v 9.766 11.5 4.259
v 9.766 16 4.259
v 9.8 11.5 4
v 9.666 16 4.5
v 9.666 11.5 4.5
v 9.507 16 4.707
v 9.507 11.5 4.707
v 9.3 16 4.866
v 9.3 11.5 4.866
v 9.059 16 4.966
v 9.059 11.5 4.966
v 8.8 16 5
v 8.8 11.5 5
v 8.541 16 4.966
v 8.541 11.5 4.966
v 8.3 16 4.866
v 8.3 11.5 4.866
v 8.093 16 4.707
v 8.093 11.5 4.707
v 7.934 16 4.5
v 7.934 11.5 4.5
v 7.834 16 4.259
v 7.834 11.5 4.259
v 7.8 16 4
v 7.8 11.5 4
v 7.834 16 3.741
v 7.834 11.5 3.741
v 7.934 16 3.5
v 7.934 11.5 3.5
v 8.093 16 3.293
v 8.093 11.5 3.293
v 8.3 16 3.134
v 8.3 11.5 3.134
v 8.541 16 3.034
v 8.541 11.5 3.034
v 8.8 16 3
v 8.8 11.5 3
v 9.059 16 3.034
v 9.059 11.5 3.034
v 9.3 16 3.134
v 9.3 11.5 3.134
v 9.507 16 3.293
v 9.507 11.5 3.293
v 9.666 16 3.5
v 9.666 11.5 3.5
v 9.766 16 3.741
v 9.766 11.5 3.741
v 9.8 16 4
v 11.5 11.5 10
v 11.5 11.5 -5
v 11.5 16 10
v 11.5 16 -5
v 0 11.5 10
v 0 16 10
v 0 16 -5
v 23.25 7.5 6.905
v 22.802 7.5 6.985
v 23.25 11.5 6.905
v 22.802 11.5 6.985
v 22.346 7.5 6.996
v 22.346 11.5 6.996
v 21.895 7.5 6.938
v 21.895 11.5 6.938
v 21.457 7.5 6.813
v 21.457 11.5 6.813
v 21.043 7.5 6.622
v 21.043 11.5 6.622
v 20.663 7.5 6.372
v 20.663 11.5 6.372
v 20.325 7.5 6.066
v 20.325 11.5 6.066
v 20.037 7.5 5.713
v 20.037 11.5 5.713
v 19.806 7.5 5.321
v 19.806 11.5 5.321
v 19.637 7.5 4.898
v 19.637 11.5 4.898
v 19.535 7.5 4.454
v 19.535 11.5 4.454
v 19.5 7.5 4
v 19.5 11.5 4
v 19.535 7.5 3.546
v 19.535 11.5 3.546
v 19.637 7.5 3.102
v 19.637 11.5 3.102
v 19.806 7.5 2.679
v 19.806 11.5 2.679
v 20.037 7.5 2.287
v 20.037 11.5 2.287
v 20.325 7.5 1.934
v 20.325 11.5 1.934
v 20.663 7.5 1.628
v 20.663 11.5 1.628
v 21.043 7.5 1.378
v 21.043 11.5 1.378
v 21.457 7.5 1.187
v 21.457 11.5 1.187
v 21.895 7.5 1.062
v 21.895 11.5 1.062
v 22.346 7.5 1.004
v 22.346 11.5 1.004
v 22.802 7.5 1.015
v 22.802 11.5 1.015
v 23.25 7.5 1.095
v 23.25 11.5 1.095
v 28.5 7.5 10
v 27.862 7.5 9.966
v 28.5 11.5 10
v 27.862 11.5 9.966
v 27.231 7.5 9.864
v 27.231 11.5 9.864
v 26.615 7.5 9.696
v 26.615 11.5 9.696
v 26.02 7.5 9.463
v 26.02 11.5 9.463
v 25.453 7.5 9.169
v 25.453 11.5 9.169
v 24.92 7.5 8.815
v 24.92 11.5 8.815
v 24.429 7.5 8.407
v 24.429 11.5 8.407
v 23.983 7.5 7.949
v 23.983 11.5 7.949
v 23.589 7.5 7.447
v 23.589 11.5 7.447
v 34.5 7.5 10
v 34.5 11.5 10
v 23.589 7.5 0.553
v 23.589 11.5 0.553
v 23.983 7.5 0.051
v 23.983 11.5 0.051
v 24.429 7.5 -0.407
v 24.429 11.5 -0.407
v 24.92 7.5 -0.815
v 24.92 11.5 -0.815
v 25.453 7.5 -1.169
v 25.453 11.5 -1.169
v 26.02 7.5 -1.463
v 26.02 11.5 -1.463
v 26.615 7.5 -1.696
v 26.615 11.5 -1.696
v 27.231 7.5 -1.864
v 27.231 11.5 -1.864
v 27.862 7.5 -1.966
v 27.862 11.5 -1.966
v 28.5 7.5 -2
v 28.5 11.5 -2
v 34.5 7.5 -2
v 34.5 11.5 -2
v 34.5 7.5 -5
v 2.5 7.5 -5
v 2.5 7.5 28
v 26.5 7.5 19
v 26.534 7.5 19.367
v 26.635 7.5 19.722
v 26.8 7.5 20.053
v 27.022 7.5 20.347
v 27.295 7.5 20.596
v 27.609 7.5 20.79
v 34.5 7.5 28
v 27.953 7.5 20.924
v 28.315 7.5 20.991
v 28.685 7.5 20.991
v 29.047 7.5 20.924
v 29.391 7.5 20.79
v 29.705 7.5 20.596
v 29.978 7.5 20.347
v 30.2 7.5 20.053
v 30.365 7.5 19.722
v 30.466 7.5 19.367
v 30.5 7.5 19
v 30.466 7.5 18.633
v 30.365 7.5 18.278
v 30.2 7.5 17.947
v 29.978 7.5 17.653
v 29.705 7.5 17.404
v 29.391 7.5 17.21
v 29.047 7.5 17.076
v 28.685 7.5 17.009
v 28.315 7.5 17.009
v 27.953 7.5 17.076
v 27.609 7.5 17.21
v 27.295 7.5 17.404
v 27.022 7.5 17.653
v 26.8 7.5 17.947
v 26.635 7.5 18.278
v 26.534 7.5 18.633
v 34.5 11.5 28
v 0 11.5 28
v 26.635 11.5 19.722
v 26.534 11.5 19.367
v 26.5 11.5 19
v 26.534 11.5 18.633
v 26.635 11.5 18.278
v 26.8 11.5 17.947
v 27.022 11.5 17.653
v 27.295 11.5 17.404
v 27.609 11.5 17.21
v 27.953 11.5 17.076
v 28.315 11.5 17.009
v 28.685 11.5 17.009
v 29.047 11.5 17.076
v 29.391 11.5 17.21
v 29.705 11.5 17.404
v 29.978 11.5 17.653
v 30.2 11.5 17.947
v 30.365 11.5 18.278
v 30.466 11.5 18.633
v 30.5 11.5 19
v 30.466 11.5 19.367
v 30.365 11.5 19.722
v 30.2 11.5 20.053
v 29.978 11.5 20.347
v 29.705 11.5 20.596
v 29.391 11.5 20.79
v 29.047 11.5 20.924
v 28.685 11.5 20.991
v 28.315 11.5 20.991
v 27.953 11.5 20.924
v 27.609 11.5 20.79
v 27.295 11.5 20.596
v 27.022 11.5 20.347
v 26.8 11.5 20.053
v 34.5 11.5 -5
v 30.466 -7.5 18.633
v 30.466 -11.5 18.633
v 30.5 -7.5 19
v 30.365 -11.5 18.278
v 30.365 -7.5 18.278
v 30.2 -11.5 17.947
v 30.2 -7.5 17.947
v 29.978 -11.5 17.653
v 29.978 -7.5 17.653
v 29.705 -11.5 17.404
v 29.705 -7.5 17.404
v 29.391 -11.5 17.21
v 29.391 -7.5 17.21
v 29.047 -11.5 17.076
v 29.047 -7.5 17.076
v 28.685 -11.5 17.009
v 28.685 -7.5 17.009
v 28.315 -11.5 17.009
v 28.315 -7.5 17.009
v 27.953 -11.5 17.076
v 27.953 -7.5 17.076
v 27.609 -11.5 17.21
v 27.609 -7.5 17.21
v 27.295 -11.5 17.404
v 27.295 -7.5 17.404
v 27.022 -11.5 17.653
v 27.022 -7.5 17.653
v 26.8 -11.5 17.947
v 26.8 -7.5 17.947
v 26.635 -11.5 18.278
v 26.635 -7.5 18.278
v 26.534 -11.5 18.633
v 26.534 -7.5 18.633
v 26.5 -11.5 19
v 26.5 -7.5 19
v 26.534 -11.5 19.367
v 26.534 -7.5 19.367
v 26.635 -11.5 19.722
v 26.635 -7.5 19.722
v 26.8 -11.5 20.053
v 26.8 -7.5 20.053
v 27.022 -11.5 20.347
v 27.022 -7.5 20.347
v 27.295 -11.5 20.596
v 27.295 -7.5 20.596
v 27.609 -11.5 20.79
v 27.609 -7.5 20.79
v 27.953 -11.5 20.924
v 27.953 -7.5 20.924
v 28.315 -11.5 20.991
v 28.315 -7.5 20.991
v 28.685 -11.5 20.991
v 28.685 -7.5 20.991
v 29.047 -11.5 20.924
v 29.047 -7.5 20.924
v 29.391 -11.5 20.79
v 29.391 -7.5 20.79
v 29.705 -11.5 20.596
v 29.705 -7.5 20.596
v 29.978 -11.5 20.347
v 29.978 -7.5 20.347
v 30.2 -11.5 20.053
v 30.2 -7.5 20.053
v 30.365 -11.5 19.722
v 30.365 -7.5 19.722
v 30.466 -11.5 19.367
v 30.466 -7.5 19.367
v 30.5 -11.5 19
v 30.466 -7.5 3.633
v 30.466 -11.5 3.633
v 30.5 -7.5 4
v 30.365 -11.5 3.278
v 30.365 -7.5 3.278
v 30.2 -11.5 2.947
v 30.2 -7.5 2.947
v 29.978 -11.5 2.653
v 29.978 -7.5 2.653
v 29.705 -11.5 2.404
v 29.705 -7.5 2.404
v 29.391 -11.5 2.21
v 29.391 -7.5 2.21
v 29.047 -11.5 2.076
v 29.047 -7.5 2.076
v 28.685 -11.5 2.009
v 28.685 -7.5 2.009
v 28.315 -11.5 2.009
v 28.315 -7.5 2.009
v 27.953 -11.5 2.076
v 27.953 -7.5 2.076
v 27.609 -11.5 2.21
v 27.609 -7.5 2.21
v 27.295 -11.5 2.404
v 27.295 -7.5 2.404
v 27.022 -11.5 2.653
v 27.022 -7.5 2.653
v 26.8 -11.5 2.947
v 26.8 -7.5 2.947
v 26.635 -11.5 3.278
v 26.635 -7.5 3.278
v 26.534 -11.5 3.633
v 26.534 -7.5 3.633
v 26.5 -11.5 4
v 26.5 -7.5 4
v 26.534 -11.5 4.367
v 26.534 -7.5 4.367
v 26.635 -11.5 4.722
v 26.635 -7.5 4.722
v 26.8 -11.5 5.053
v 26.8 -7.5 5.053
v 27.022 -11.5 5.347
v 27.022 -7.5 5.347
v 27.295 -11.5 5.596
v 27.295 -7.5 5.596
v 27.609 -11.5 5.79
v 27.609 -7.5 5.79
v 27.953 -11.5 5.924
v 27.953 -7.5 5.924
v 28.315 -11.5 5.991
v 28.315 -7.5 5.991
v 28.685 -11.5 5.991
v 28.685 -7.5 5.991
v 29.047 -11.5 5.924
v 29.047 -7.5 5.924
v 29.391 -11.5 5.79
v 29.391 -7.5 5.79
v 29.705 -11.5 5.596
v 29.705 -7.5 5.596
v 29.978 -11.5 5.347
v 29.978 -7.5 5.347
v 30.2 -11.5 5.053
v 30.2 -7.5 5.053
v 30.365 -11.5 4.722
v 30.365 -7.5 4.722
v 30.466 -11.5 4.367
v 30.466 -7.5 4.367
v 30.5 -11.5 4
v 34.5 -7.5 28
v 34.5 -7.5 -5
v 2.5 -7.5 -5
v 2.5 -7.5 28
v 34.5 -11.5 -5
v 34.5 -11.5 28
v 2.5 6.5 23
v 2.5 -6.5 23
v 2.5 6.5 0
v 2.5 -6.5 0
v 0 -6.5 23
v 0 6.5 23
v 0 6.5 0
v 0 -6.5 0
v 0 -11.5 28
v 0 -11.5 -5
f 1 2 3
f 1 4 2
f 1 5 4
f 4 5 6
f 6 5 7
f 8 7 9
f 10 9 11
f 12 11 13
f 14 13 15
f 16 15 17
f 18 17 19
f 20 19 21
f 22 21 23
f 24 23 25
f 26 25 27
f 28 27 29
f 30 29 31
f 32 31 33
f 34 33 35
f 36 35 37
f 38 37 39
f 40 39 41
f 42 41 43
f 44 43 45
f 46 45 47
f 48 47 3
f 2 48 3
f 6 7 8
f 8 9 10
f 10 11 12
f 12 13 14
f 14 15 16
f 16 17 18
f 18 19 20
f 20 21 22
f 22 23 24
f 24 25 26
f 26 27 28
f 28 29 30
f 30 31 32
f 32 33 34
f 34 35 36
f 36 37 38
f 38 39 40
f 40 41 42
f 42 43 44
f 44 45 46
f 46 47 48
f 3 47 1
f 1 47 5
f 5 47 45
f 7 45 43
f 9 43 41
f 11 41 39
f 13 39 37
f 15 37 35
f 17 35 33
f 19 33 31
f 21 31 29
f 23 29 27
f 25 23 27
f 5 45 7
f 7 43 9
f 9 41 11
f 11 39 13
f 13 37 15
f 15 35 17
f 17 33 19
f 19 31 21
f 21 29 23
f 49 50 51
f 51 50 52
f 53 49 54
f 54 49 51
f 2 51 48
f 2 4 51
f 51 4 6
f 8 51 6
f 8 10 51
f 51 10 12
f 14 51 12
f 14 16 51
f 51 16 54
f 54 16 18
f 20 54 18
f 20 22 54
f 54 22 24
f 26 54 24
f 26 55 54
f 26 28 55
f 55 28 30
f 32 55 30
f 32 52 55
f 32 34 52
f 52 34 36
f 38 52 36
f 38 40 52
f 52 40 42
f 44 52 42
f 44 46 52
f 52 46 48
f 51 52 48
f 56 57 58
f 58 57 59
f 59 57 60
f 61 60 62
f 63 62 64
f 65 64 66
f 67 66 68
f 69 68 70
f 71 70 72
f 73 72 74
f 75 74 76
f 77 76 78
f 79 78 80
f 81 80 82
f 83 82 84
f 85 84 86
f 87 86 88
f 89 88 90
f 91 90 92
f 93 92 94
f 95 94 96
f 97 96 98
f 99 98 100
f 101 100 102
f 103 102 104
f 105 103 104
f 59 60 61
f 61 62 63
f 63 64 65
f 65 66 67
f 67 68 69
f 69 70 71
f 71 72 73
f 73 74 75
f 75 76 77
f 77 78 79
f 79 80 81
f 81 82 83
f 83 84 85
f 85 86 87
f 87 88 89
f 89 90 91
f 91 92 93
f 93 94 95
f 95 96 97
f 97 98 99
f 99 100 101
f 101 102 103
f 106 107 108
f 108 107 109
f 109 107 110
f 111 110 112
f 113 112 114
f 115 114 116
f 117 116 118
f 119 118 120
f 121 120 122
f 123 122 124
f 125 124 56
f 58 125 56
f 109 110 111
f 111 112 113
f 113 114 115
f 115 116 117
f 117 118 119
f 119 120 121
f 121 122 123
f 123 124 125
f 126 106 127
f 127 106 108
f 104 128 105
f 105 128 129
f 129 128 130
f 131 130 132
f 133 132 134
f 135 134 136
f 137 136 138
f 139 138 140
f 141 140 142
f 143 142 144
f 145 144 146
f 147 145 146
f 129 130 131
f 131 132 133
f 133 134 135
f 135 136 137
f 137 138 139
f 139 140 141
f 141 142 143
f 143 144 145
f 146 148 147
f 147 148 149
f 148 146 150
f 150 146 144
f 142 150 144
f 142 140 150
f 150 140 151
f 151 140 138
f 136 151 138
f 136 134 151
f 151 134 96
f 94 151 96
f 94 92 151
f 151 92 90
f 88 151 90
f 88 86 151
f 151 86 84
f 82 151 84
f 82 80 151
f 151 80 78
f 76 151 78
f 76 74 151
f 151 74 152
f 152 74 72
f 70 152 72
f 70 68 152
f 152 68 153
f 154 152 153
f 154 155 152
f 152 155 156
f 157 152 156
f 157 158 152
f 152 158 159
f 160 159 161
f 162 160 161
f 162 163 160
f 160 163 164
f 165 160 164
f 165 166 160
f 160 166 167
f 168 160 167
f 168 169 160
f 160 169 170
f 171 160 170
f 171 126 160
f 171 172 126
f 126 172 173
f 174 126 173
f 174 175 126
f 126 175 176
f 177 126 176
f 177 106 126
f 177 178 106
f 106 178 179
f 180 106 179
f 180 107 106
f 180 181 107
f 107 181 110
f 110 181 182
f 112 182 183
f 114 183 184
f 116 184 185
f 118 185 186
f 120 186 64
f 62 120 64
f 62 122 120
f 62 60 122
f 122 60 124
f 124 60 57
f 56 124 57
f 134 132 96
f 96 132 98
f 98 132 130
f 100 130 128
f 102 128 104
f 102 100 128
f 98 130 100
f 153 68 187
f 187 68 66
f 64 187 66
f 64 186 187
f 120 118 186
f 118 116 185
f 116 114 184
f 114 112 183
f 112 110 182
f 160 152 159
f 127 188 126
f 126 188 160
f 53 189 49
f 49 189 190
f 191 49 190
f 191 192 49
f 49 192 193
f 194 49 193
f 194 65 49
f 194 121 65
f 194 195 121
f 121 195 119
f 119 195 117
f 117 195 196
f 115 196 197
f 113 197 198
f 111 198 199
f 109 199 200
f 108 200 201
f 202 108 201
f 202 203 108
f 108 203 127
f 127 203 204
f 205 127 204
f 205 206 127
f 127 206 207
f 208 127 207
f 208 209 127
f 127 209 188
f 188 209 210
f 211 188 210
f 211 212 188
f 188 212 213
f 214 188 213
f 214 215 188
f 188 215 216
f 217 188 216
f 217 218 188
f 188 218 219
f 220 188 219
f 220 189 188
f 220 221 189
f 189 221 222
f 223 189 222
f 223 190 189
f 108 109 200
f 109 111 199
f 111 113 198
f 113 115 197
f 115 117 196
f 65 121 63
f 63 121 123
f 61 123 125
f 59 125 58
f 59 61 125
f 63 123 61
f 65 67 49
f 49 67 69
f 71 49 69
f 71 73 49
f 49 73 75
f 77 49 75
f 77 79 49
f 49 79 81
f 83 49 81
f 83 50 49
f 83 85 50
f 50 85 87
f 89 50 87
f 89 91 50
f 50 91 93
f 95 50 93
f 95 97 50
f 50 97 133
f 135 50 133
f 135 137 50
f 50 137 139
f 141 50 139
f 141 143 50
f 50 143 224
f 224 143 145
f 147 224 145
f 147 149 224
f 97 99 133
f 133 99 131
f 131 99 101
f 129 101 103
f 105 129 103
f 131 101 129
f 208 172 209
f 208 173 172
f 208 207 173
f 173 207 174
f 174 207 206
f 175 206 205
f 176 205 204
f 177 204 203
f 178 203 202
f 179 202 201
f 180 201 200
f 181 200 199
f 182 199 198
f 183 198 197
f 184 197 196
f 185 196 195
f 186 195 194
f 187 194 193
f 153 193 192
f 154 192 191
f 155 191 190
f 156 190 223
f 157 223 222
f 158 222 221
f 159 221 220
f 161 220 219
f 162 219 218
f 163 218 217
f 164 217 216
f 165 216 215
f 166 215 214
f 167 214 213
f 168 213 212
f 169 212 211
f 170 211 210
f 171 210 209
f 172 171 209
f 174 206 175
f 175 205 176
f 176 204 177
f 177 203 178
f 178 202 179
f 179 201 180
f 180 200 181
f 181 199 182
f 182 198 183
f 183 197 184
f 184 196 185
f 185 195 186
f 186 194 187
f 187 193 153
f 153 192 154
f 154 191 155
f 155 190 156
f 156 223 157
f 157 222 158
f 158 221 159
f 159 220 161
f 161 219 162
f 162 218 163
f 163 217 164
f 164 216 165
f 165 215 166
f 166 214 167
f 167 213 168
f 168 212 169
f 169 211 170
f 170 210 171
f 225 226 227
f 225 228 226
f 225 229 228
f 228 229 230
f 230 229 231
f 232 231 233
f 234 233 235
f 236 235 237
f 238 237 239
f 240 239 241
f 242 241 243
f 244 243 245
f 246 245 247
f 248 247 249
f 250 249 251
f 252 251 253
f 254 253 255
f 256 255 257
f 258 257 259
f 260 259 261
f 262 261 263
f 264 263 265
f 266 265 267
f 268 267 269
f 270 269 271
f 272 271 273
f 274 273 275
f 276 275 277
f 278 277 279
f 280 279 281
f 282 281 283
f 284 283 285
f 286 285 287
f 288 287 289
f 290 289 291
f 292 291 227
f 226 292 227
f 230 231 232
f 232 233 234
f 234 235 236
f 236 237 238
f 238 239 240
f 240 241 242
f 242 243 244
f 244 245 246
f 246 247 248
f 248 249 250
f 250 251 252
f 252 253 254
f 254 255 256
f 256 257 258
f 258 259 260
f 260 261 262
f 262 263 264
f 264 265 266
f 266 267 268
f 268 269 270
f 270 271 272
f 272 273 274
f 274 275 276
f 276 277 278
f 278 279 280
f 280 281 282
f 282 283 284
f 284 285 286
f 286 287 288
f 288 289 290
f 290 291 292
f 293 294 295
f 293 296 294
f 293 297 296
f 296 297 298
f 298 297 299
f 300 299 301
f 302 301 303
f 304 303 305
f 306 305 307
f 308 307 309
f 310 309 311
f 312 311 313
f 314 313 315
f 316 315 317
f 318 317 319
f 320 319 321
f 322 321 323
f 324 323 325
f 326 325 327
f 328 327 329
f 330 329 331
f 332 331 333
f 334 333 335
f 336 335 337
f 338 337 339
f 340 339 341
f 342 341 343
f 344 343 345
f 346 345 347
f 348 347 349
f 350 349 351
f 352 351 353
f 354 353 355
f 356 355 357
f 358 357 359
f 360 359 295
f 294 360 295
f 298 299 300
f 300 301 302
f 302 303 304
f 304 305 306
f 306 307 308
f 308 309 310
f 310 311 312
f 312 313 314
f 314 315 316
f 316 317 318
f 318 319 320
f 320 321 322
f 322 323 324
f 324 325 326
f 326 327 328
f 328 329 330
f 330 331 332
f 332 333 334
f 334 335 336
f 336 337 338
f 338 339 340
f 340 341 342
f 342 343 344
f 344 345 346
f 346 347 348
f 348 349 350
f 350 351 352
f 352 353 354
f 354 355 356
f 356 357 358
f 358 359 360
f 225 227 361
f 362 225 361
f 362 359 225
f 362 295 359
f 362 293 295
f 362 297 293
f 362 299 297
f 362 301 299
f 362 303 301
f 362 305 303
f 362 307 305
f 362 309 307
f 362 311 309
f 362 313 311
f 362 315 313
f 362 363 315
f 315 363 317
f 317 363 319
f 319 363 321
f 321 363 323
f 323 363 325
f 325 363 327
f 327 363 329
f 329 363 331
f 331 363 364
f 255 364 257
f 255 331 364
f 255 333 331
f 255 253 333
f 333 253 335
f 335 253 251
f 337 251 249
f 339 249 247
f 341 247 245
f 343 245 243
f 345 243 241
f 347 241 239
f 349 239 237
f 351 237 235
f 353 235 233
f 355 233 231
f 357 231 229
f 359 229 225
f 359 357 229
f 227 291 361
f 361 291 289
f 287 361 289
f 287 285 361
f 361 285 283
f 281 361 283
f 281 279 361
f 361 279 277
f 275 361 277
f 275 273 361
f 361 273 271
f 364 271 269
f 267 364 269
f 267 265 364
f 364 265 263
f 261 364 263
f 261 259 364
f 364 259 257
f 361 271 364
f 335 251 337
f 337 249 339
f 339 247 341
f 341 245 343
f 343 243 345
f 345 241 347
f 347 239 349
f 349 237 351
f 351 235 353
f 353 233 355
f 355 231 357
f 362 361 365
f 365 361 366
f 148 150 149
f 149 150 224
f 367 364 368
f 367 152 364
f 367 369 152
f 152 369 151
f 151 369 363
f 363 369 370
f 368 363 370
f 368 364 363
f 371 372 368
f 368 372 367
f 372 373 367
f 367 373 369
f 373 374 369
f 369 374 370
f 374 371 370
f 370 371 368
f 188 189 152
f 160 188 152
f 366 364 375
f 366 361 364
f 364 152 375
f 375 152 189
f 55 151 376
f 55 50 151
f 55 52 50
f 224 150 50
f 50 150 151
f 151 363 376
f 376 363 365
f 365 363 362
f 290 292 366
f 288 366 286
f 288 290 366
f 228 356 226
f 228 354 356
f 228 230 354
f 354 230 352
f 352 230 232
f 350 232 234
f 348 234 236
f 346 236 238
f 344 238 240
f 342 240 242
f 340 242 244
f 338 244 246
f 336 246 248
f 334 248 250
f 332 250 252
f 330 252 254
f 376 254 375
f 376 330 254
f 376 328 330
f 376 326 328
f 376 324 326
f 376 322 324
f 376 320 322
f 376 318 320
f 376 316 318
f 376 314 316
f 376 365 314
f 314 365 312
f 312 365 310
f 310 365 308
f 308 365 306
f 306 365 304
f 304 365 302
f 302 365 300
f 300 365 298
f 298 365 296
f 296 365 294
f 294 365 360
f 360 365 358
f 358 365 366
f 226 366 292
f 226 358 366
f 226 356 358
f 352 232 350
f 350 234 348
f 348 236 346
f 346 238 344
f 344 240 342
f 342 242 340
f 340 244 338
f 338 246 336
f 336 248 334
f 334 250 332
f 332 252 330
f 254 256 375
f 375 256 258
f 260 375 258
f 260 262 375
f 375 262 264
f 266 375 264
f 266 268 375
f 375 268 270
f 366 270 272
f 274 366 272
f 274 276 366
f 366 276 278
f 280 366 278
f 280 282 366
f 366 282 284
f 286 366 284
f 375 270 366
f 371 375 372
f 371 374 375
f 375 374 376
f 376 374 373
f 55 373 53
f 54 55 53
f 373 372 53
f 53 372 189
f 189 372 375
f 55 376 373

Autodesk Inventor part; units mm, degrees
ref_plane "YZ Plane" through (0, 0, 0) normal (1, 0, 0) x (0, 1, 0)
ref_plane "XZ Plane" through (0, 0, 0) normal (0, 1, 0) x (-1, 0, 0)
ref_plane "XY Plane" through (0, 0, 0) normal (0, 0, 1) x (1, 0, 0)
sketch "Skizze1" plane through (0, 0, 0) normal (1, 0, 0) x (0, 1, 0)
  line L0 (-6.5, 23) -> (-6.5, 0)
  line L1 (-6.5, 0) -> (6.5, 0)
  line L2 (6.5, 0) -> (6.5, 23)
  line L3 (6.5, 23) -> (-6.5, 23)
  line L4 (-6.5, 23) -> (6.5, 0) construction
  line L5 (-6.5, 0) -> (6.5, 23) construction
  line L6 (0, 34.6) -> (0, -11.6) projected
  line L7 (-16.1, 0) -> (16.1, 0) projected
  line L8 (-11.5, -5) -> (-11.5, 28)
  line L9 (-11.5, 28) -> (11.5, 28)
  line L10 (11.5, 28) -> (11.5, -5)
  line L11 (11.5, -5) -> (-11.5, -5)
  line L12 (-11.5, -5) -> (11.5, 28) construction
  line L13 (-11.5, 28) -> (11.5, -5) construction
  point P0 (0, 0)
  point P1 (0, 11.5)
  point P2 (0, 0)
  point P3 (0, 11.5)
  dimension "d0" = 23
  dimension "d1" = 13
  dimension "d2" = 5
  dimension "d3" = 5
extrude "Extrusion1" add sketch "Skizze1" along normal blind 2.5 contours L0 L7 L8 L9 L6 L3 | L1 L6 L11 L8 L7 | L6 L9 L10 L7 L2 L3 | L1 L7 L10 L11 L6
sketch "Skizze2" plane through (2.5, 0, 0) normal (1, 0, 0) x (0, 0, -1)
  line L0 (-23, 6.5) -> (-23, -6.5) projected
  line L1 (-23, -6.5) -> (0, -6.5) projected
  line L2 (0, -6.5) -> (0, 6.5) projected
  line L3 (0, 6.5) -> (-23, 6.5) projected
  line L4 (-28, -11.5) -> (-28, 11.5) projected
  line L5 (-28, 11.5) -> (5, 11.5) projected
  line L6 (5, 11.5) -> (5, -11.5) projected
  line L7 (5, -11.5) -> (-28, -11.5) projected
  line L8 (0, -16.1) -> (0, 16.1) projected
  line L9 (11.6, 0) -> (-34.6, 0) projected
  line L10 (-28, -11.5) -> (-28, 11.5) projected
  line L11 (5, -11.5) -> (-28, -11.5)
  line L12 (-28, -11.5) -> (-28, -7.5)
  line L13 (-28, -7.5) -> (5, -7.5)
  line L14 (5, -7.5) -> (5, -11.5)
  line L15 (5, 11.5) -> (-28, 11.5)
  line L16 (-28, 11.5) -> (-28, 7.5)
  line L17 (-28, 7.5) -> (5, 7.5)
  line L18 (5, 7.5) -> (5, 11.5)
  point P0 (0, 0)
  dimension "d6" = 4
  dimension "d7" = 4
extrude "Extrusion2" add sketch "Skizze2" along normal blind 32 contours L17 L4 L5 L8 | L8 L5 L6 L17 | L13 L8 L7 L4 | L13 L6 L7 L8
sketch "Skizze3" plane through (0, -11.5, -5) normal (0, -1, 0) x (1, 0, 0)
  line L0 (34.5, 33) -> (34.5, 0) projected
  line L1 (34.5, 0) -> (0, 0) projected
  line L2 (0, 0) -> (0, 33) projected
  line L3 (0, 33) -> (34.5, 33) projected
  line L4 (0, 39.6) -> (0, -6.6) projected
  circle A0 centre (28.5, 9) radius 7.5
  circle A1 centre (28.5, 24) radius 7.5
  circle A2 centre (28.5, 9) radius 2
  circle A3 centre (28.5, 24) radius 2
  point P0 (0, 5)
  dimension "d10" = 15
  dimension "d11" = 15
  dimension "d12" = 33
  dimension "d13" = 9
  dimension "d14" = 4
  dimension "d15" = 4
  dimension "d16" = 6
  dimension "d17" = 6
extrude "Extrusion3" cut sketch "Skizze3" against normal blind 40 contours A2 | A3
sketch "Skizze4" plane through (0, 11.5, 28) normal (0, 1, 0) x (1, 0, 0)
  circle A0 centre (28.5, 9) radius 2 projected
  circle A1 centre (28.5, 24) radius 2 projected
  line L0 (34.5, 33) -> (34.5, 0) projected
  line L1 (34.5, 0) -> (0, 0) projected
  line L2 (0, 0) -> (0, 33) projected
  line L3 (0, 33) -> (34.5, 33) projected
  circle A2 centre (28.5, 24) radius 2 projected
  circle A3 centre (28.5, 24) radius 6
  circle A4 centre (22.5, 24) radius 3
  line L4 (34.5, 33) -> (34.5, 0) projected
  line L5 (28.5, 18) -> (34.5, 18)
  line L6 (34.5, 18) -> (34.5, 30)
  line L7 (34.5, 30) -> (28.5, 30)
  line L8 (28.5, 30) -> (28.5, 18)
  point P0 (0, 28)
  dimension "d20" = 12
  dimension "d21" = 6
  dimension "d22" = 6
extrude "Extrusion4" cut sketch "Skizze4" against normal blind 5 contours A1 L8 | A1 L8 A3 | L8 A1 | A1 L8 A3 A4 | L7 L0 A3 | A3 L0 L5 | A4 A3 | A3 A4
sketch "Skizze5" plane through (0, 11.5, 28) normal (0, 1, 0) x (1, 0, 0)
  line L0 (0, 33) -> (11.5, 33)
  line L1 (11.5, 33) -> (11.5, 18)
  line L2 (11.5, 18) -> (0, 18)
  line L3 (0, 18) -> (0, 33)
  point P0 (0, 28)
  dimension "d25" = 11.5
  dimension "d26" = 15
extrude "Extrusion5" add sketch "Skizze5" along normal blind 4.5
sketch "Skizze6" plane through (0, 16, 28) normal (0, 1, 0) x (1, 0, 0)
  line L0 (11.5, 33) -> (11.5, 18) projected
  line L1 (11.5, 18) -> (0, 18) projected
  line L2 (0, 18) -> (0, 33) projected
  line L3 (0, 33) -> (11.5, 33) projected
  circle A0 centre (8.8, 24) radius 1
  point P0 (0, 28)
  dimension "d29" = 2.7
  dimension "d30" = 9
  dimension "d31" = 2
extrude "Extrusion6" cut sketch "Skizze6" against normal blind 4.5 contours A0
equation "\"d13\" = 0 * d10 + 0.5 * d12 - 0.5 * d11"
equation "\"d17\" = d16"
properties part number "Greifer1" material "ABS-Kunststoff"
